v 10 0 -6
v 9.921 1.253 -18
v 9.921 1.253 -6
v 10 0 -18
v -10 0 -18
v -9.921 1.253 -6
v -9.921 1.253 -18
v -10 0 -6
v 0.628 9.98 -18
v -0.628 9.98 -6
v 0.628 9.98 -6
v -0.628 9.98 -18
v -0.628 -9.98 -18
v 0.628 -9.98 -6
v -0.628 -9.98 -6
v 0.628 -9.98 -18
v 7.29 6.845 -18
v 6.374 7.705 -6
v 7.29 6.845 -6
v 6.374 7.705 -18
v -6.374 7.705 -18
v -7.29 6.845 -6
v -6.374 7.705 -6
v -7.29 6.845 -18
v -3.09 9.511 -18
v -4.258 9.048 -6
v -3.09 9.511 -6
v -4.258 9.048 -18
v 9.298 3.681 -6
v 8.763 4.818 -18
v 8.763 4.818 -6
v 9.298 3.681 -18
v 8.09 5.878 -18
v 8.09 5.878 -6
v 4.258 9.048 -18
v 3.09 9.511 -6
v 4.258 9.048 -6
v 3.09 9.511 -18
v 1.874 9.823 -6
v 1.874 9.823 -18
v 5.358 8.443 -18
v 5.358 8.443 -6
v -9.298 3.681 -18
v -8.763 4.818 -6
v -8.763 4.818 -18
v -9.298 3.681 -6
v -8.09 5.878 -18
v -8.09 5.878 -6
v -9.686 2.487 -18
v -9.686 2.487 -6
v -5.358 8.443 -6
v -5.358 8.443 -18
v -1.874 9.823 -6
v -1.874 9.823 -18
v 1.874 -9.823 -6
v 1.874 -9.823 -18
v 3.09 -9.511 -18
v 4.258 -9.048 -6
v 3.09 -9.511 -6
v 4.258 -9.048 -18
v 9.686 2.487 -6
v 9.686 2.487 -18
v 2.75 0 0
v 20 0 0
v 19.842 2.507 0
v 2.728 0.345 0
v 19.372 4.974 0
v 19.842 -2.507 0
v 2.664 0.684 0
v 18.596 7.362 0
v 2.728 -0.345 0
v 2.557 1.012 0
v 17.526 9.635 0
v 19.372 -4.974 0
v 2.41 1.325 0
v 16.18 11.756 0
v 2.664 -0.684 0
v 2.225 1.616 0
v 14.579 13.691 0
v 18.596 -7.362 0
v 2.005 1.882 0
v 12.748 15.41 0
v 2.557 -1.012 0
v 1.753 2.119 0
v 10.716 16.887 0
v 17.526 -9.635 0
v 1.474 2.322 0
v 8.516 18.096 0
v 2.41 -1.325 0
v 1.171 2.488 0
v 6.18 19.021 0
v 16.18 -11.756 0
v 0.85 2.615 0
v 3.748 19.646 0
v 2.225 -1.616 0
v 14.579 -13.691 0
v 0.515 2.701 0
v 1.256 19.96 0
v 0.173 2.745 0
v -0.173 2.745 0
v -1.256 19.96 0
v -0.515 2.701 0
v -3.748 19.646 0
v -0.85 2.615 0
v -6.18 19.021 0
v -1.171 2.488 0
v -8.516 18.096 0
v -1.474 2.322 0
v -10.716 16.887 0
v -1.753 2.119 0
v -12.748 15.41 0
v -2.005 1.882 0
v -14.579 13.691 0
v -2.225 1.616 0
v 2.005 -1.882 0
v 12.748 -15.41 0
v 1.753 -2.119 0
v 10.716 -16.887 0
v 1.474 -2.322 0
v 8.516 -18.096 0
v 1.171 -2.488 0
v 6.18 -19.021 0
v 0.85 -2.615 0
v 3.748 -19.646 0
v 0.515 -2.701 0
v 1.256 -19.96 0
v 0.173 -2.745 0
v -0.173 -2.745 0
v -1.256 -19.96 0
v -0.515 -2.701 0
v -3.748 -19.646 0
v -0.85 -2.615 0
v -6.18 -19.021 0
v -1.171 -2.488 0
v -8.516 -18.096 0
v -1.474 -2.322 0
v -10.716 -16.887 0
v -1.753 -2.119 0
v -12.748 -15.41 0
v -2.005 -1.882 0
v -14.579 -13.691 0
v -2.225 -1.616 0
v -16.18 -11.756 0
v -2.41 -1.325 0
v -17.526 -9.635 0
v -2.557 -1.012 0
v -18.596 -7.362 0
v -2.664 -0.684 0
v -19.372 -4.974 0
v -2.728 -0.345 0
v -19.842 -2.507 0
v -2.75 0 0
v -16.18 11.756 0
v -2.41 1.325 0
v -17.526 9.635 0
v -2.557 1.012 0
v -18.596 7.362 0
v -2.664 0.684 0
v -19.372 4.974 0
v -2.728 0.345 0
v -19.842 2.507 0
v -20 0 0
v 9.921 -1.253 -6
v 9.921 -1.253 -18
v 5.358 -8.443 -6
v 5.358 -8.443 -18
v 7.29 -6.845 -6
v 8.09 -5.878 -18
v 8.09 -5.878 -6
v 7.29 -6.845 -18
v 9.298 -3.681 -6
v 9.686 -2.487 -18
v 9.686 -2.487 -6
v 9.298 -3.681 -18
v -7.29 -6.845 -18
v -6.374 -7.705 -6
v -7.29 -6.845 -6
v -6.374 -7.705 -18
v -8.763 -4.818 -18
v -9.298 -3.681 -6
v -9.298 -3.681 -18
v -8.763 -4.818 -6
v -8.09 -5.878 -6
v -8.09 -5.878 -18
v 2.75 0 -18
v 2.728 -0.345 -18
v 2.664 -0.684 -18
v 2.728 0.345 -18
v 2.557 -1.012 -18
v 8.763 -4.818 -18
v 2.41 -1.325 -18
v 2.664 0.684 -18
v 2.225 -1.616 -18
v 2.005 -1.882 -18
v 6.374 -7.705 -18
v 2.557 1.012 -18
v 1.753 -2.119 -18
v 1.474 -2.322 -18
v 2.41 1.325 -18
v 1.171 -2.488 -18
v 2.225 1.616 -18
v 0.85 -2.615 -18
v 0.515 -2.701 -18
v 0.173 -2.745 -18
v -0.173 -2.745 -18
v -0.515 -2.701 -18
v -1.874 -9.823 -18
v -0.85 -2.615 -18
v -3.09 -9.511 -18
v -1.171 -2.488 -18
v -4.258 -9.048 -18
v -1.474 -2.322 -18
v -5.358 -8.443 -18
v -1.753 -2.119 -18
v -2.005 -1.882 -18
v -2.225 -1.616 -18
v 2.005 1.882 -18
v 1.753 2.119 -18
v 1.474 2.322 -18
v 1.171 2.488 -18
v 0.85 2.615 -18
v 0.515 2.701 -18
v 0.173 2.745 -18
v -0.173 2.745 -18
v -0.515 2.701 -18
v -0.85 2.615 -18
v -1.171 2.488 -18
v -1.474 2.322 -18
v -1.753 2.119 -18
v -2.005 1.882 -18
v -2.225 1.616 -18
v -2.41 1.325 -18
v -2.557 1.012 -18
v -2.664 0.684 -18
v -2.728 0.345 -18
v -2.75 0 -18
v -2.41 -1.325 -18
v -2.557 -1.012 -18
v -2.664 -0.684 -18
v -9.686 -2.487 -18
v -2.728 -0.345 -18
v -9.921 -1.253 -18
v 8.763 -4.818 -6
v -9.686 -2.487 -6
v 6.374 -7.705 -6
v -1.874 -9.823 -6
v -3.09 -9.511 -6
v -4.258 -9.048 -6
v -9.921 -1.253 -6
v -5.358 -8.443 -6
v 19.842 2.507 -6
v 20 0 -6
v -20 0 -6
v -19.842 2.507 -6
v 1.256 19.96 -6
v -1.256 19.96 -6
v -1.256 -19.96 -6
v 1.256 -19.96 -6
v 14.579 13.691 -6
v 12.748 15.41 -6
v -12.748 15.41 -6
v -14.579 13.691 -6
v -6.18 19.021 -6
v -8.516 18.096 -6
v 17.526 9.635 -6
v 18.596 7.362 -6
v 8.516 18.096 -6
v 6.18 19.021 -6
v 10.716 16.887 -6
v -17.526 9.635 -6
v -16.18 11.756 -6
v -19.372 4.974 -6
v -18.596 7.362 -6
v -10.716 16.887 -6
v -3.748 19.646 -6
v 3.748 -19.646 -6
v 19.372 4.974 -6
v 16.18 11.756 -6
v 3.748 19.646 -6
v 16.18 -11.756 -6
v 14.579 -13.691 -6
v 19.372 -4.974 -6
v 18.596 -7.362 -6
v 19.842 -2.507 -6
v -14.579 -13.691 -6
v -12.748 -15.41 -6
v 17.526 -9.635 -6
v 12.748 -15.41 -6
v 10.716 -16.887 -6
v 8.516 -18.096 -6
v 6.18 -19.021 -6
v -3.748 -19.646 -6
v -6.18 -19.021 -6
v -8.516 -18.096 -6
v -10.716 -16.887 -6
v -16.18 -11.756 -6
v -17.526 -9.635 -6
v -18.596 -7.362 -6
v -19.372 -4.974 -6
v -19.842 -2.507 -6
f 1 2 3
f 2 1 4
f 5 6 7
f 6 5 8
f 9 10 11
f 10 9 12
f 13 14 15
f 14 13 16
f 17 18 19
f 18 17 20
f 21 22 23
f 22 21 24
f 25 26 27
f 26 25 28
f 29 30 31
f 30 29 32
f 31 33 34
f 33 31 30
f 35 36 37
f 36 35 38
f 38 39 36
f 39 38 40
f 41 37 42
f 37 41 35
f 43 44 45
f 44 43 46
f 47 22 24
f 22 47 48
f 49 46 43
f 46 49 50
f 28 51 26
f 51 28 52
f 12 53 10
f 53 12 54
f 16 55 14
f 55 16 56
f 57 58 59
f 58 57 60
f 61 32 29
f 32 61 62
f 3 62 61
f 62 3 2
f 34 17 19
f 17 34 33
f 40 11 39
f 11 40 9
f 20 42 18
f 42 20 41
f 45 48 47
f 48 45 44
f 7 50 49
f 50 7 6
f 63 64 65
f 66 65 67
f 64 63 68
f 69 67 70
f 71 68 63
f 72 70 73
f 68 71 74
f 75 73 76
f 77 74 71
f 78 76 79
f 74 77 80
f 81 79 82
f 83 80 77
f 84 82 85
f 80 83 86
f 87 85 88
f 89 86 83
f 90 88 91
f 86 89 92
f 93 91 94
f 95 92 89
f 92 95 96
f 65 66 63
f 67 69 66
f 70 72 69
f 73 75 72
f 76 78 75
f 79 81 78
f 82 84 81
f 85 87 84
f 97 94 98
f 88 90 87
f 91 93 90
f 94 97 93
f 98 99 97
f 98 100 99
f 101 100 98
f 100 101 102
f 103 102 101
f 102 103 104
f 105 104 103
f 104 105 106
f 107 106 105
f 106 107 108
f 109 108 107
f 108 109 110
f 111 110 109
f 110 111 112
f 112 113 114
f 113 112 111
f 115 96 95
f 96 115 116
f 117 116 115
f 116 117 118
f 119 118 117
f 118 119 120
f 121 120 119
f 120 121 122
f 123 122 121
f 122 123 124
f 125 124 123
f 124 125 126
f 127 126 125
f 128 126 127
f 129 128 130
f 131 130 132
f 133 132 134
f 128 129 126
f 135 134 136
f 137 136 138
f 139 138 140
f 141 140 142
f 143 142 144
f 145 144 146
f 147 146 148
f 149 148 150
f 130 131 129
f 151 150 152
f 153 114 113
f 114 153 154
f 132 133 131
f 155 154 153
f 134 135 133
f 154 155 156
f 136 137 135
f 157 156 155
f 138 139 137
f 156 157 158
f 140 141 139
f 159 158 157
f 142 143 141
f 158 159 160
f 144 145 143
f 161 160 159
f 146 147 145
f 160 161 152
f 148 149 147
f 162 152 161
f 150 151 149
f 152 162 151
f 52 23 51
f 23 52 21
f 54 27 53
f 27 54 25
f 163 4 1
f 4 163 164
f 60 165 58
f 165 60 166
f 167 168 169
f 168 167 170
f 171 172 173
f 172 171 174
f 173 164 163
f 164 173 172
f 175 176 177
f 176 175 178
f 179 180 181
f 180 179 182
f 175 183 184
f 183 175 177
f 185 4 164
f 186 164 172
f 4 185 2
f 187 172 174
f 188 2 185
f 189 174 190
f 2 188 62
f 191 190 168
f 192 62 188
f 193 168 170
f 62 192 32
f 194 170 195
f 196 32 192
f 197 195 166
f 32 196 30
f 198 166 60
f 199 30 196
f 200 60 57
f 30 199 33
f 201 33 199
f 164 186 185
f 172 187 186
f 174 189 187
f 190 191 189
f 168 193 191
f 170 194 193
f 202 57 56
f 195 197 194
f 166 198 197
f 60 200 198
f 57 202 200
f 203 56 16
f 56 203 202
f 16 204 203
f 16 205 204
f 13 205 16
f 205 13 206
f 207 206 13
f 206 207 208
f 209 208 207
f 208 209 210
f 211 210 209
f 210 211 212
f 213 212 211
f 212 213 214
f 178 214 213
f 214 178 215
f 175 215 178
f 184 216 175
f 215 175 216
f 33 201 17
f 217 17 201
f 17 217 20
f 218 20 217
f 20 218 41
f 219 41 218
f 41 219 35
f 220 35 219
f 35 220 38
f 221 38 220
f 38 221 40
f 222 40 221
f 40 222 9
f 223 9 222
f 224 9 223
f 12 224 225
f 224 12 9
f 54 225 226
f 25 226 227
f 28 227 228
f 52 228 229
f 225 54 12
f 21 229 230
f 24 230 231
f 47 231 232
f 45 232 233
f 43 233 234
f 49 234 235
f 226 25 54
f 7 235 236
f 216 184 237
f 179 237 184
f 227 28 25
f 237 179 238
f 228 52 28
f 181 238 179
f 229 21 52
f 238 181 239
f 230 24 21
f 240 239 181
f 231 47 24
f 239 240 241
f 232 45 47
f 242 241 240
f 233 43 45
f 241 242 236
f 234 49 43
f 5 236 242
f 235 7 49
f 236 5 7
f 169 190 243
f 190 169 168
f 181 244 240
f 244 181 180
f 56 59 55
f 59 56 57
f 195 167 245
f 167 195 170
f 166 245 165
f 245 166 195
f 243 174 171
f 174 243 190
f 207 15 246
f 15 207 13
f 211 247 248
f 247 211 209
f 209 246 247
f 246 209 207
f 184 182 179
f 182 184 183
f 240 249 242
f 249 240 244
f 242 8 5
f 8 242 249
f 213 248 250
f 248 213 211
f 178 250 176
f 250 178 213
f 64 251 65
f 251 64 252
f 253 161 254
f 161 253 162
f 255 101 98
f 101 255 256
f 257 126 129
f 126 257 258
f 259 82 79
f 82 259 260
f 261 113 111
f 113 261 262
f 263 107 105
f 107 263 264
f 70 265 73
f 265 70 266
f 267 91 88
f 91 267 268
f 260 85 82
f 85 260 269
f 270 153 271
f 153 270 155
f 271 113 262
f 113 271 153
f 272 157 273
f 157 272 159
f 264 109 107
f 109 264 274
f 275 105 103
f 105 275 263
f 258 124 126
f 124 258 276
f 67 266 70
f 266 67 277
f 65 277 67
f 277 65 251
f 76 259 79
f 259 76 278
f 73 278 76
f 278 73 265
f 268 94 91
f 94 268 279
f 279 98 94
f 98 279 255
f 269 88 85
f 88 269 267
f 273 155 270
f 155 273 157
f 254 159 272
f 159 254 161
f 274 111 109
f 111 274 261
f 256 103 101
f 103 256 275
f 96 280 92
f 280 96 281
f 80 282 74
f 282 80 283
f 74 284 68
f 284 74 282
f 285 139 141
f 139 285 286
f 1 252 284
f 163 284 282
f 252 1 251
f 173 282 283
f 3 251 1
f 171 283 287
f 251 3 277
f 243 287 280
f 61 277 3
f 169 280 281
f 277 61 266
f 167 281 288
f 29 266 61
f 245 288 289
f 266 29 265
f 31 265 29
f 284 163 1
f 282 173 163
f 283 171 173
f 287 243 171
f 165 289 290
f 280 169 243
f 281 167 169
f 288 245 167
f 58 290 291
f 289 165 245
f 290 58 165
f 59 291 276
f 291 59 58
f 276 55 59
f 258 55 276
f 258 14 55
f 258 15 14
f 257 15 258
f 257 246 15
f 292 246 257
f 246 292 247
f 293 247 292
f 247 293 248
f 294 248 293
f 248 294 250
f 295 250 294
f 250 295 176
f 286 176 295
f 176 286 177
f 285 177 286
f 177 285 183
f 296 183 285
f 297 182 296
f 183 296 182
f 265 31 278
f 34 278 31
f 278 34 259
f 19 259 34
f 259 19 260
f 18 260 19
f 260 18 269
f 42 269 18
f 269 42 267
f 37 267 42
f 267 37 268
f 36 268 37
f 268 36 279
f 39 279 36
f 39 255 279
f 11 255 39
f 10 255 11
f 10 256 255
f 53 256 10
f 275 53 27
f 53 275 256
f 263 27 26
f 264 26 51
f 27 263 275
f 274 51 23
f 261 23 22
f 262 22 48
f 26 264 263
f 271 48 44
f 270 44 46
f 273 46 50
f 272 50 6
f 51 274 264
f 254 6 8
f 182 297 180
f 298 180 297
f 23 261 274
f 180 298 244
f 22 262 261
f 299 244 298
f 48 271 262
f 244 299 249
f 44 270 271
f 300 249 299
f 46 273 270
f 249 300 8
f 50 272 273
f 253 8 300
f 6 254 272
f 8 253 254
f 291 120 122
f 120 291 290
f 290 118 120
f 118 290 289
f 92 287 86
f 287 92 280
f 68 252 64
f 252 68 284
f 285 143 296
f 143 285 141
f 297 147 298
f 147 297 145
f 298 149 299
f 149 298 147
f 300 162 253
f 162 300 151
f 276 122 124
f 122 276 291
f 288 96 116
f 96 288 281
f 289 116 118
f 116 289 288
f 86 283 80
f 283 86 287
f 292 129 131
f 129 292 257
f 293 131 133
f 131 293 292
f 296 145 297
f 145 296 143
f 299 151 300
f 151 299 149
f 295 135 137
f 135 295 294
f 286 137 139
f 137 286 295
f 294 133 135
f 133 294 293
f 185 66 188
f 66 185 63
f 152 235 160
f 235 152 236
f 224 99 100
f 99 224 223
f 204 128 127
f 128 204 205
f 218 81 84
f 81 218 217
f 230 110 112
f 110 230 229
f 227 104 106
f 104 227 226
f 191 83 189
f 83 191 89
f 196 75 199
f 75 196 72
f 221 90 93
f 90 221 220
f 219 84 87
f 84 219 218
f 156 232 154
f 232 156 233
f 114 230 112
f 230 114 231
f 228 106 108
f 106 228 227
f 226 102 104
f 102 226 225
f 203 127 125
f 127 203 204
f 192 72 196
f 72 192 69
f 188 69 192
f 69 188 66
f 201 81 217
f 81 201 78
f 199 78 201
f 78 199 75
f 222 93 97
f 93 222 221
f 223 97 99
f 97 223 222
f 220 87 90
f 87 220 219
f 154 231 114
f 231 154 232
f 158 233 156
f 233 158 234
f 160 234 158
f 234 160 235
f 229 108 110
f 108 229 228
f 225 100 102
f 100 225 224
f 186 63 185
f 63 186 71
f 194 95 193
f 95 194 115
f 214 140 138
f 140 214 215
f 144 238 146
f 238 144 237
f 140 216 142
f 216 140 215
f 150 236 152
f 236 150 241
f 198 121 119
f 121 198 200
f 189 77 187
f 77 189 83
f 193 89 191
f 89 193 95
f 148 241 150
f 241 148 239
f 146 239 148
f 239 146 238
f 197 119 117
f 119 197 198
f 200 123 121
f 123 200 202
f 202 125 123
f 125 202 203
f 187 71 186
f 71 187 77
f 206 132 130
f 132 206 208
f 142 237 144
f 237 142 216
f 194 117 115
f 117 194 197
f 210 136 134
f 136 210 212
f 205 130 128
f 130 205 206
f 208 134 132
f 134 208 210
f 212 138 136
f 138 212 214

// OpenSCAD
$fn = 50;


difference() {
	union() {
		translate(v = [0, 0, -18.0000000000]) {
			cylinder(h = 18, r = 10.0000000000);
		}
		translate(v = [0, 0, -6.0000000000]) {
			cylinder(h = 6, r = 20.0000000000);
		}
	}
	union() {
		#translate(v = [0, 0, -18]) {
			cylinder(h = 18, r = 2.7500000000);
		}
	}
}
